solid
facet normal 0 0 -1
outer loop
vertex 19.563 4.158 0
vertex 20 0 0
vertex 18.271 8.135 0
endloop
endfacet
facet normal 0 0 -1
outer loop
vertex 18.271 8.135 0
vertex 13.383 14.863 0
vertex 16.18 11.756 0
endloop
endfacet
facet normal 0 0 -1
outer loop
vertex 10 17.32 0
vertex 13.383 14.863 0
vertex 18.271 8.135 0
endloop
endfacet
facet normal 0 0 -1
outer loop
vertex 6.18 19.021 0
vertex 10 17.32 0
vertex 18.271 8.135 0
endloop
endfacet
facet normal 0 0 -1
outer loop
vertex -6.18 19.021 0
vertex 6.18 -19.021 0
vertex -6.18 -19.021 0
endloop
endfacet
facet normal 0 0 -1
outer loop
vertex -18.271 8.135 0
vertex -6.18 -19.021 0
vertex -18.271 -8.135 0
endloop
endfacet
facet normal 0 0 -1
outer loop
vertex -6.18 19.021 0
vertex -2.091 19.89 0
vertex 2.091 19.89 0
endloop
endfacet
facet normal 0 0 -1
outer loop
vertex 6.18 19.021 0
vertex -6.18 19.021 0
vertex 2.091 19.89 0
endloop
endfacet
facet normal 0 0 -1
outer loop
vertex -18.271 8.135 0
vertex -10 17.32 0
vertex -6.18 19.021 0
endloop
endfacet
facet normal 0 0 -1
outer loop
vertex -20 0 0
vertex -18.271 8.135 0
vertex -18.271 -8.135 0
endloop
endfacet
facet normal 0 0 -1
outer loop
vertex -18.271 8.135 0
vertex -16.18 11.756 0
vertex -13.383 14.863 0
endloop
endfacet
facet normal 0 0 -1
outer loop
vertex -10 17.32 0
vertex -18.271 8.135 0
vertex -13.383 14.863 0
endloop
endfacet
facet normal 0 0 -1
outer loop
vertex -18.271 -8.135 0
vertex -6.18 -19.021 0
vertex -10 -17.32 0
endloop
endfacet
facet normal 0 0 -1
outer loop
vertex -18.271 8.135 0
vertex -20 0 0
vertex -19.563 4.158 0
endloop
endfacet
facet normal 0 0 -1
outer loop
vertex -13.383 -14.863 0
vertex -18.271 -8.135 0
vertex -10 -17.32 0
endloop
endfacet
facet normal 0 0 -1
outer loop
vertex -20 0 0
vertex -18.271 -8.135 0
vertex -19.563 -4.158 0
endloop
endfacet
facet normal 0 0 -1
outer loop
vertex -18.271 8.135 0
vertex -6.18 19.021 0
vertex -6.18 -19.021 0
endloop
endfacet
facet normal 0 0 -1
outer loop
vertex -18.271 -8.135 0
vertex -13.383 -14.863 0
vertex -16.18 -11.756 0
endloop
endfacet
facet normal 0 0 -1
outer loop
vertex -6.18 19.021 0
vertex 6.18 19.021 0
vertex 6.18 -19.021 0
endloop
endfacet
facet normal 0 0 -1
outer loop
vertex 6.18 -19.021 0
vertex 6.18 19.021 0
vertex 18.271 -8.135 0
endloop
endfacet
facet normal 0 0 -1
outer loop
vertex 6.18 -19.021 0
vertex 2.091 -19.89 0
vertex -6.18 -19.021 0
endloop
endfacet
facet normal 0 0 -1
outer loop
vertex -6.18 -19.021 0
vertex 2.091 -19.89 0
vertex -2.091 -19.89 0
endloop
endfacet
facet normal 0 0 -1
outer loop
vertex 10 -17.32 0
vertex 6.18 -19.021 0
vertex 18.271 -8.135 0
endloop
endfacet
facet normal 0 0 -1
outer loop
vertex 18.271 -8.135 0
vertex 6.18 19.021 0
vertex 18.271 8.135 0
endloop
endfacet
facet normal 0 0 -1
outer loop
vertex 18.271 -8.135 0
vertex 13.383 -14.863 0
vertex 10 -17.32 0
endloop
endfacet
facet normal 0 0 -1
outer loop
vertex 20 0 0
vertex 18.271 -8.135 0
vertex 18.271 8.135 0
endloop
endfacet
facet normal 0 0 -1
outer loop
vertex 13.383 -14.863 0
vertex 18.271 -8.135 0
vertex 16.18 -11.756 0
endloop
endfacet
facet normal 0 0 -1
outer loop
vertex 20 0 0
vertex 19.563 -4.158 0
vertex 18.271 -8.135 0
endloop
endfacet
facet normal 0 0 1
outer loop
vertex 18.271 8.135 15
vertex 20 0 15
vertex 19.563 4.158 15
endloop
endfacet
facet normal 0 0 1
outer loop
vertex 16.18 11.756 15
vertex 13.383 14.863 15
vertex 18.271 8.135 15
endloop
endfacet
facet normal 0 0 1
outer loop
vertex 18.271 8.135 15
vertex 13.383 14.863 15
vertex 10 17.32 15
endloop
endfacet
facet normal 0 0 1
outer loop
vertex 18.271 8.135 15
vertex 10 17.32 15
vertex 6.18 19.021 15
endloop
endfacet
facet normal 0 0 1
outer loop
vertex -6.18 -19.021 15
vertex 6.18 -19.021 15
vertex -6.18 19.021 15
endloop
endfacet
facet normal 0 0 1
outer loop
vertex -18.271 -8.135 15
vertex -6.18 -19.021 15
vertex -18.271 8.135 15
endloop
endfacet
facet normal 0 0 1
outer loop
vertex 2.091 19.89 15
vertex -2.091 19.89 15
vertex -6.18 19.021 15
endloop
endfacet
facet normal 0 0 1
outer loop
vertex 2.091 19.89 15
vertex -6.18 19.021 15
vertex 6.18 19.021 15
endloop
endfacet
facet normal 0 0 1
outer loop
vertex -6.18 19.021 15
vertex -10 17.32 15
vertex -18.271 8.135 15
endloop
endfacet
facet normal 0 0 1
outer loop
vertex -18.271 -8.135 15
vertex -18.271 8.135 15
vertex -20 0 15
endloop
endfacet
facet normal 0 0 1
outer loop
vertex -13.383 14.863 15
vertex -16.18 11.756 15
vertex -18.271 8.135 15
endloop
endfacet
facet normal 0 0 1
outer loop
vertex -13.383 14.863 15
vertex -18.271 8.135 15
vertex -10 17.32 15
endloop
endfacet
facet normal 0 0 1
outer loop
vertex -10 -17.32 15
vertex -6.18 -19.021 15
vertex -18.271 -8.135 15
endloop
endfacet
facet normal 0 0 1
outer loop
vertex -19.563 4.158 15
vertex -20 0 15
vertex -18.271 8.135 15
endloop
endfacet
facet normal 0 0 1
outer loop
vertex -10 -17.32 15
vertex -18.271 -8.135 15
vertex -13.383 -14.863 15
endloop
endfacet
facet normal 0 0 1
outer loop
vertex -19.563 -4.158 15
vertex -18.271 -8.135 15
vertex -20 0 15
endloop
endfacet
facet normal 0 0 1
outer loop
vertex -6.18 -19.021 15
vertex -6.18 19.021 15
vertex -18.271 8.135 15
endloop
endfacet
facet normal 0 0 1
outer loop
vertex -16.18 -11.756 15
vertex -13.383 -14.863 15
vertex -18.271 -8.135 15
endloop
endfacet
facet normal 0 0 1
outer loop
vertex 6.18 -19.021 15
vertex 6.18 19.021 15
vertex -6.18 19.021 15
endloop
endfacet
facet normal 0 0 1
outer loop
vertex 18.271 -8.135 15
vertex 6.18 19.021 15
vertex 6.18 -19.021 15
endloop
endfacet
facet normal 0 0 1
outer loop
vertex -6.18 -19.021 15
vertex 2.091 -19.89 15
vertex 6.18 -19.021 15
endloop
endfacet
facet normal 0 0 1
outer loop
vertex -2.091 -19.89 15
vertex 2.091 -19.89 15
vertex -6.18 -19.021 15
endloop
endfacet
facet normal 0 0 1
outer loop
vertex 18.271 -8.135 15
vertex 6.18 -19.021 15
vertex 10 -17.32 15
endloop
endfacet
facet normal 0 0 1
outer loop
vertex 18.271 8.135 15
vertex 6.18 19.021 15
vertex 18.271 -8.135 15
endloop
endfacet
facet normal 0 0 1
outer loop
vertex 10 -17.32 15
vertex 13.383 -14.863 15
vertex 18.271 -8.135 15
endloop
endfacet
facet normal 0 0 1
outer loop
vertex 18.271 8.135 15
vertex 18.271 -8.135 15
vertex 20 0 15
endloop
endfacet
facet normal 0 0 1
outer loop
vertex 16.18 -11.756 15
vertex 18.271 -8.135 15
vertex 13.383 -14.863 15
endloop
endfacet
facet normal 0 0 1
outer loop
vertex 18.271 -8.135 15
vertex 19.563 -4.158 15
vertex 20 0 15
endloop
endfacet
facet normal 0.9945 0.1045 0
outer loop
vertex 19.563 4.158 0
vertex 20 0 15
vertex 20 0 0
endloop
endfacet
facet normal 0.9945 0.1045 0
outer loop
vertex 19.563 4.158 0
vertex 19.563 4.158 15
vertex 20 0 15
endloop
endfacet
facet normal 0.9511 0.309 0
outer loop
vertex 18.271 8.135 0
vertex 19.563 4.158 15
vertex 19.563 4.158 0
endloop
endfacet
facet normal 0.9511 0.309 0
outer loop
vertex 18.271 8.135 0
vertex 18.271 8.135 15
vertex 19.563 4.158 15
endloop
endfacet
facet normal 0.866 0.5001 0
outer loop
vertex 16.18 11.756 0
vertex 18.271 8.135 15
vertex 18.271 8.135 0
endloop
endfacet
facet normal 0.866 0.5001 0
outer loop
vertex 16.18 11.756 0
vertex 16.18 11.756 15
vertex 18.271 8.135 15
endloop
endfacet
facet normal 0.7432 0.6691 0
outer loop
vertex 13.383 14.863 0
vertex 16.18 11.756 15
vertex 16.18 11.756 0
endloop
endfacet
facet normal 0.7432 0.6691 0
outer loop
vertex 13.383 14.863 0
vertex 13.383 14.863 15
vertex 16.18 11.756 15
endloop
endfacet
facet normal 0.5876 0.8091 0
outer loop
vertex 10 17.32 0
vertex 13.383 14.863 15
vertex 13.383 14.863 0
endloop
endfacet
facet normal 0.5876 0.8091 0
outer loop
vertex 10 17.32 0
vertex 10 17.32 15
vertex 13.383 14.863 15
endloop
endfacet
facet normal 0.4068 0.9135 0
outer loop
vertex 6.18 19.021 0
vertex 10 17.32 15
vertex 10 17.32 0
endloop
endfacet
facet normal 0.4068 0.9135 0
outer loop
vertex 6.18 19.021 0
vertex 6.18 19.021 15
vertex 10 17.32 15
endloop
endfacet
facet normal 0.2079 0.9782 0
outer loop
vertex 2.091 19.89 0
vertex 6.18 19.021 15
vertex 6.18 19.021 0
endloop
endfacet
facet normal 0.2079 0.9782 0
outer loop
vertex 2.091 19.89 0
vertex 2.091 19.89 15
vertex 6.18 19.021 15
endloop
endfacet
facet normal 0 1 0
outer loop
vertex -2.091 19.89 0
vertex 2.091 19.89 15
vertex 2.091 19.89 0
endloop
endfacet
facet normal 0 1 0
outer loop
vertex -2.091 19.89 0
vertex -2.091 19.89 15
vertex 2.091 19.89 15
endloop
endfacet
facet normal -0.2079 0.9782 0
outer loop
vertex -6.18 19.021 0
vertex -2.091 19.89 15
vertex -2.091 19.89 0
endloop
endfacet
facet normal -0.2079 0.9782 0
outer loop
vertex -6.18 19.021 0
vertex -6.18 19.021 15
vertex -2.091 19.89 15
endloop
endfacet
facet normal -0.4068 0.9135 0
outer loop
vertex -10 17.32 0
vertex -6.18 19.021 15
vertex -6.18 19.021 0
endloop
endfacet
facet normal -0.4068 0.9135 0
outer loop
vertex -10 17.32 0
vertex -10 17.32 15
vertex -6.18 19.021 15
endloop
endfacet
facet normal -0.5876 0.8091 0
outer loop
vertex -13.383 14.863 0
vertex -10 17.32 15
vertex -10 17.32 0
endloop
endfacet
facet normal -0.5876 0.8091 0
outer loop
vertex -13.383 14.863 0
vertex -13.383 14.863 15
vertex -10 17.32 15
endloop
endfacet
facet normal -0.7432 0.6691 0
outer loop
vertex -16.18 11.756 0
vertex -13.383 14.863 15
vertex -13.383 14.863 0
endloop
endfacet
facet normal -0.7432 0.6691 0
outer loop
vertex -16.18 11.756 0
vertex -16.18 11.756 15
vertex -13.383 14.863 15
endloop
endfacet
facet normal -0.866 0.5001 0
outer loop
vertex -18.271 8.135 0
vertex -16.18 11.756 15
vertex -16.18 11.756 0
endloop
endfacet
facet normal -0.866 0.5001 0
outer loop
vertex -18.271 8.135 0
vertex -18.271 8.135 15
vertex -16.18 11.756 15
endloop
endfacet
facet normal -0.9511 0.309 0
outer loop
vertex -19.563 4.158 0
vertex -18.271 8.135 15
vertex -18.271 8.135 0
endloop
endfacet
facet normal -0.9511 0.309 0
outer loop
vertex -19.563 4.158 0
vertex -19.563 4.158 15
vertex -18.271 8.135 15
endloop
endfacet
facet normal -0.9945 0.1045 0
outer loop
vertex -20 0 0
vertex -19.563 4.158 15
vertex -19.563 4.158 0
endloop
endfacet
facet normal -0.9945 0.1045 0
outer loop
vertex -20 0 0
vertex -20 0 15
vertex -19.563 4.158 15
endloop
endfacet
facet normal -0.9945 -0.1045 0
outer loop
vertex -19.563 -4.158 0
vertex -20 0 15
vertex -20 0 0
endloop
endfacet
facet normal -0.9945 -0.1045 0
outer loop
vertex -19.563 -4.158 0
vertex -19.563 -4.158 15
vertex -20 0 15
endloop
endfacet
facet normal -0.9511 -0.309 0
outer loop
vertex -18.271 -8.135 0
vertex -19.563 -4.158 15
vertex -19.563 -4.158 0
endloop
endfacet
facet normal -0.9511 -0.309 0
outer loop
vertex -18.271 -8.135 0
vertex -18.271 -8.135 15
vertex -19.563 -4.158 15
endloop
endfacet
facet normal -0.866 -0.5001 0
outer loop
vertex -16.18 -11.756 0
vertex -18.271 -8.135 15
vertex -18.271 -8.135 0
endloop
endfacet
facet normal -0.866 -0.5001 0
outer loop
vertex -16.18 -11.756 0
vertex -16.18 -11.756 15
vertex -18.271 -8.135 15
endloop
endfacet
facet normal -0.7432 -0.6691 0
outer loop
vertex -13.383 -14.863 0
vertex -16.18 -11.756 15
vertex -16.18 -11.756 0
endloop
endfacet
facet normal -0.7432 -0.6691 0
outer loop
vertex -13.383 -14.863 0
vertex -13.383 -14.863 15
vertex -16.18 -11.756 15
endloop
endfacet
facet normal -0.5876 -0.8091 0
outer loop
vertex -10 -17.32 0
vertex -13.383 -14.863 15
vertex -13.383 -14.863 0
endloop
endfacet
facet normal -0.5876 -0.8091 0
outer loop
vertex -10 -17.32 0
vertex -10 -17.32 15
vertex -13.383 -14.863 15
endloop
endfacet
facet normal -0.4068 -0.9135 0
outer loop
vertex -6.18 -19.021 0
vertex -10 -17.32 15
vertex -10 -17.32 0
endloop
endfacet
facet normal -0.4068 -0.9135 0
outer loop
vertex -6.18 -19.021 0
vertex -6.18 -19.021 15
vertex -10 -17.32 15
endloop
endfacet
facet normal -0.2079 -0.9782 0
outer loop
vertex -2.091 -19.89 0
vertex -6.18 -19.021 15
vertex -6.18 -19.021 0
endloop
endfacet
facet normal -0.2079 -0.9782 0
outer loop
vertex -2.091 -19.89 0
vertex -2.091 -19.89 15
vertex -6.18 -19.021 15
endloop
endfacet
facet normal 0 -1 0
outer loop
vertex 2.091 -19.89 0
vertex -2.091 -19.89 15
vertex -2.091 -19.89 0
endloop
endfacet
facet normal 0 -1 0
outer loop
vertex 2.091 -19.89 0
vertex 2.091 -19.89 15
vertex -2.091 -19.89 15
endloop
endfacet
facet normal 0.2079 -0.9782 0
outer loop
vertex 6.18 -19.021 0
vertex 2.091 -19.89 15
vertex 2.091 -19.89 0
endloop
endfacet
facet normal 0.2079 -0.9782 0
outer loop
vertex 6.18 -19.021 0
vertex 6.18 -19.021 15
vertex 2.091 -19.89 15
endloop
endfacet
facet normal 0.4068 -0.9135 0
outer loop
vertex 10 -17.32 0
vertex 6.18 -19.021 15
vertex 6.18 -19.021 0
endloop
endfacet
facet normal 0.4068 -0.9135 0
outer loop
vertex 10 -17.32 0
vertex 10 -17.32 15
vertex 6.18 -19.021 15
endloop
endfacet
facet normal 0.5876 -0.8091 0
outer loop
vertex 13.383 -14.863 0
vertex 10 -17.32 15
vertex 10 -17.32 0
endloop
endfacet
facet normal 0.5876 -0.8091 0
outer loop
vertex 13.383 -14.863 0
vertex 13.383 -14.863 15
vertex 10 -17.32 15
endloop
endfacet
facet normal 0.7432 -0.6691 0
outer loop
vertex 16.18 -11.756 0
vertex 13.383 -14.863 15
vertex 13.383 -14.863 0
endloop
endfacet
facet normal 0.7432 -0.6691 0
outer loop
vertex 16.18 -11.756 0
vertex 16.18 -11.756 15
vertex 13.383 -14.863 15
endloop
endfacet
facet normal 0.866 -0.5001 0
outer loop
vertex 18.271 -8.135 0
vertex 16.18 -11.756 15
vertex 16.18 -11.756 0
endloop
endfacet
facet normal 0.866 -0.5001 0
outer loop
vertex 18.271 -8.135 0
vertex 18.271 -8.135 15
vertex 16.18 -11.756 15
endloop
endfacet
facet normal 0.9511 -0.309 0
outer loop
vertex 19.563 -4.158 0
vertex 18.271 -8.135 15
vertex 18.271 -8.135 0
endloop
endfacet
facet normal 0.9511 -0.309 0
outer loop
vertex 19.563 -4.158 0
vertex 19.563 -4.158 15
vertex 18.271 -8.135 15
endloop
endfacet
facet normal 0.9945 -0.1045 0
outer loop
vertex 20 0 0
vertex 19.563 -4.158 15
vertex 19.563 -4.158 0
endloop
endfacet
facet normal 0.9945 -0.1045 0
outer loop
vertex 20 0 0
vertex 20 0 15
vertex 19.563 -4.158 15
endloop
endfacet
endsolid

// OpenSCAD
// Cone target

// Parameters
radius = 20;
height = 15;
segments = 50;

// Cone
difference() {
  linear_extrude(height = height, convexity = 10)
    circle(r = radius);
}
